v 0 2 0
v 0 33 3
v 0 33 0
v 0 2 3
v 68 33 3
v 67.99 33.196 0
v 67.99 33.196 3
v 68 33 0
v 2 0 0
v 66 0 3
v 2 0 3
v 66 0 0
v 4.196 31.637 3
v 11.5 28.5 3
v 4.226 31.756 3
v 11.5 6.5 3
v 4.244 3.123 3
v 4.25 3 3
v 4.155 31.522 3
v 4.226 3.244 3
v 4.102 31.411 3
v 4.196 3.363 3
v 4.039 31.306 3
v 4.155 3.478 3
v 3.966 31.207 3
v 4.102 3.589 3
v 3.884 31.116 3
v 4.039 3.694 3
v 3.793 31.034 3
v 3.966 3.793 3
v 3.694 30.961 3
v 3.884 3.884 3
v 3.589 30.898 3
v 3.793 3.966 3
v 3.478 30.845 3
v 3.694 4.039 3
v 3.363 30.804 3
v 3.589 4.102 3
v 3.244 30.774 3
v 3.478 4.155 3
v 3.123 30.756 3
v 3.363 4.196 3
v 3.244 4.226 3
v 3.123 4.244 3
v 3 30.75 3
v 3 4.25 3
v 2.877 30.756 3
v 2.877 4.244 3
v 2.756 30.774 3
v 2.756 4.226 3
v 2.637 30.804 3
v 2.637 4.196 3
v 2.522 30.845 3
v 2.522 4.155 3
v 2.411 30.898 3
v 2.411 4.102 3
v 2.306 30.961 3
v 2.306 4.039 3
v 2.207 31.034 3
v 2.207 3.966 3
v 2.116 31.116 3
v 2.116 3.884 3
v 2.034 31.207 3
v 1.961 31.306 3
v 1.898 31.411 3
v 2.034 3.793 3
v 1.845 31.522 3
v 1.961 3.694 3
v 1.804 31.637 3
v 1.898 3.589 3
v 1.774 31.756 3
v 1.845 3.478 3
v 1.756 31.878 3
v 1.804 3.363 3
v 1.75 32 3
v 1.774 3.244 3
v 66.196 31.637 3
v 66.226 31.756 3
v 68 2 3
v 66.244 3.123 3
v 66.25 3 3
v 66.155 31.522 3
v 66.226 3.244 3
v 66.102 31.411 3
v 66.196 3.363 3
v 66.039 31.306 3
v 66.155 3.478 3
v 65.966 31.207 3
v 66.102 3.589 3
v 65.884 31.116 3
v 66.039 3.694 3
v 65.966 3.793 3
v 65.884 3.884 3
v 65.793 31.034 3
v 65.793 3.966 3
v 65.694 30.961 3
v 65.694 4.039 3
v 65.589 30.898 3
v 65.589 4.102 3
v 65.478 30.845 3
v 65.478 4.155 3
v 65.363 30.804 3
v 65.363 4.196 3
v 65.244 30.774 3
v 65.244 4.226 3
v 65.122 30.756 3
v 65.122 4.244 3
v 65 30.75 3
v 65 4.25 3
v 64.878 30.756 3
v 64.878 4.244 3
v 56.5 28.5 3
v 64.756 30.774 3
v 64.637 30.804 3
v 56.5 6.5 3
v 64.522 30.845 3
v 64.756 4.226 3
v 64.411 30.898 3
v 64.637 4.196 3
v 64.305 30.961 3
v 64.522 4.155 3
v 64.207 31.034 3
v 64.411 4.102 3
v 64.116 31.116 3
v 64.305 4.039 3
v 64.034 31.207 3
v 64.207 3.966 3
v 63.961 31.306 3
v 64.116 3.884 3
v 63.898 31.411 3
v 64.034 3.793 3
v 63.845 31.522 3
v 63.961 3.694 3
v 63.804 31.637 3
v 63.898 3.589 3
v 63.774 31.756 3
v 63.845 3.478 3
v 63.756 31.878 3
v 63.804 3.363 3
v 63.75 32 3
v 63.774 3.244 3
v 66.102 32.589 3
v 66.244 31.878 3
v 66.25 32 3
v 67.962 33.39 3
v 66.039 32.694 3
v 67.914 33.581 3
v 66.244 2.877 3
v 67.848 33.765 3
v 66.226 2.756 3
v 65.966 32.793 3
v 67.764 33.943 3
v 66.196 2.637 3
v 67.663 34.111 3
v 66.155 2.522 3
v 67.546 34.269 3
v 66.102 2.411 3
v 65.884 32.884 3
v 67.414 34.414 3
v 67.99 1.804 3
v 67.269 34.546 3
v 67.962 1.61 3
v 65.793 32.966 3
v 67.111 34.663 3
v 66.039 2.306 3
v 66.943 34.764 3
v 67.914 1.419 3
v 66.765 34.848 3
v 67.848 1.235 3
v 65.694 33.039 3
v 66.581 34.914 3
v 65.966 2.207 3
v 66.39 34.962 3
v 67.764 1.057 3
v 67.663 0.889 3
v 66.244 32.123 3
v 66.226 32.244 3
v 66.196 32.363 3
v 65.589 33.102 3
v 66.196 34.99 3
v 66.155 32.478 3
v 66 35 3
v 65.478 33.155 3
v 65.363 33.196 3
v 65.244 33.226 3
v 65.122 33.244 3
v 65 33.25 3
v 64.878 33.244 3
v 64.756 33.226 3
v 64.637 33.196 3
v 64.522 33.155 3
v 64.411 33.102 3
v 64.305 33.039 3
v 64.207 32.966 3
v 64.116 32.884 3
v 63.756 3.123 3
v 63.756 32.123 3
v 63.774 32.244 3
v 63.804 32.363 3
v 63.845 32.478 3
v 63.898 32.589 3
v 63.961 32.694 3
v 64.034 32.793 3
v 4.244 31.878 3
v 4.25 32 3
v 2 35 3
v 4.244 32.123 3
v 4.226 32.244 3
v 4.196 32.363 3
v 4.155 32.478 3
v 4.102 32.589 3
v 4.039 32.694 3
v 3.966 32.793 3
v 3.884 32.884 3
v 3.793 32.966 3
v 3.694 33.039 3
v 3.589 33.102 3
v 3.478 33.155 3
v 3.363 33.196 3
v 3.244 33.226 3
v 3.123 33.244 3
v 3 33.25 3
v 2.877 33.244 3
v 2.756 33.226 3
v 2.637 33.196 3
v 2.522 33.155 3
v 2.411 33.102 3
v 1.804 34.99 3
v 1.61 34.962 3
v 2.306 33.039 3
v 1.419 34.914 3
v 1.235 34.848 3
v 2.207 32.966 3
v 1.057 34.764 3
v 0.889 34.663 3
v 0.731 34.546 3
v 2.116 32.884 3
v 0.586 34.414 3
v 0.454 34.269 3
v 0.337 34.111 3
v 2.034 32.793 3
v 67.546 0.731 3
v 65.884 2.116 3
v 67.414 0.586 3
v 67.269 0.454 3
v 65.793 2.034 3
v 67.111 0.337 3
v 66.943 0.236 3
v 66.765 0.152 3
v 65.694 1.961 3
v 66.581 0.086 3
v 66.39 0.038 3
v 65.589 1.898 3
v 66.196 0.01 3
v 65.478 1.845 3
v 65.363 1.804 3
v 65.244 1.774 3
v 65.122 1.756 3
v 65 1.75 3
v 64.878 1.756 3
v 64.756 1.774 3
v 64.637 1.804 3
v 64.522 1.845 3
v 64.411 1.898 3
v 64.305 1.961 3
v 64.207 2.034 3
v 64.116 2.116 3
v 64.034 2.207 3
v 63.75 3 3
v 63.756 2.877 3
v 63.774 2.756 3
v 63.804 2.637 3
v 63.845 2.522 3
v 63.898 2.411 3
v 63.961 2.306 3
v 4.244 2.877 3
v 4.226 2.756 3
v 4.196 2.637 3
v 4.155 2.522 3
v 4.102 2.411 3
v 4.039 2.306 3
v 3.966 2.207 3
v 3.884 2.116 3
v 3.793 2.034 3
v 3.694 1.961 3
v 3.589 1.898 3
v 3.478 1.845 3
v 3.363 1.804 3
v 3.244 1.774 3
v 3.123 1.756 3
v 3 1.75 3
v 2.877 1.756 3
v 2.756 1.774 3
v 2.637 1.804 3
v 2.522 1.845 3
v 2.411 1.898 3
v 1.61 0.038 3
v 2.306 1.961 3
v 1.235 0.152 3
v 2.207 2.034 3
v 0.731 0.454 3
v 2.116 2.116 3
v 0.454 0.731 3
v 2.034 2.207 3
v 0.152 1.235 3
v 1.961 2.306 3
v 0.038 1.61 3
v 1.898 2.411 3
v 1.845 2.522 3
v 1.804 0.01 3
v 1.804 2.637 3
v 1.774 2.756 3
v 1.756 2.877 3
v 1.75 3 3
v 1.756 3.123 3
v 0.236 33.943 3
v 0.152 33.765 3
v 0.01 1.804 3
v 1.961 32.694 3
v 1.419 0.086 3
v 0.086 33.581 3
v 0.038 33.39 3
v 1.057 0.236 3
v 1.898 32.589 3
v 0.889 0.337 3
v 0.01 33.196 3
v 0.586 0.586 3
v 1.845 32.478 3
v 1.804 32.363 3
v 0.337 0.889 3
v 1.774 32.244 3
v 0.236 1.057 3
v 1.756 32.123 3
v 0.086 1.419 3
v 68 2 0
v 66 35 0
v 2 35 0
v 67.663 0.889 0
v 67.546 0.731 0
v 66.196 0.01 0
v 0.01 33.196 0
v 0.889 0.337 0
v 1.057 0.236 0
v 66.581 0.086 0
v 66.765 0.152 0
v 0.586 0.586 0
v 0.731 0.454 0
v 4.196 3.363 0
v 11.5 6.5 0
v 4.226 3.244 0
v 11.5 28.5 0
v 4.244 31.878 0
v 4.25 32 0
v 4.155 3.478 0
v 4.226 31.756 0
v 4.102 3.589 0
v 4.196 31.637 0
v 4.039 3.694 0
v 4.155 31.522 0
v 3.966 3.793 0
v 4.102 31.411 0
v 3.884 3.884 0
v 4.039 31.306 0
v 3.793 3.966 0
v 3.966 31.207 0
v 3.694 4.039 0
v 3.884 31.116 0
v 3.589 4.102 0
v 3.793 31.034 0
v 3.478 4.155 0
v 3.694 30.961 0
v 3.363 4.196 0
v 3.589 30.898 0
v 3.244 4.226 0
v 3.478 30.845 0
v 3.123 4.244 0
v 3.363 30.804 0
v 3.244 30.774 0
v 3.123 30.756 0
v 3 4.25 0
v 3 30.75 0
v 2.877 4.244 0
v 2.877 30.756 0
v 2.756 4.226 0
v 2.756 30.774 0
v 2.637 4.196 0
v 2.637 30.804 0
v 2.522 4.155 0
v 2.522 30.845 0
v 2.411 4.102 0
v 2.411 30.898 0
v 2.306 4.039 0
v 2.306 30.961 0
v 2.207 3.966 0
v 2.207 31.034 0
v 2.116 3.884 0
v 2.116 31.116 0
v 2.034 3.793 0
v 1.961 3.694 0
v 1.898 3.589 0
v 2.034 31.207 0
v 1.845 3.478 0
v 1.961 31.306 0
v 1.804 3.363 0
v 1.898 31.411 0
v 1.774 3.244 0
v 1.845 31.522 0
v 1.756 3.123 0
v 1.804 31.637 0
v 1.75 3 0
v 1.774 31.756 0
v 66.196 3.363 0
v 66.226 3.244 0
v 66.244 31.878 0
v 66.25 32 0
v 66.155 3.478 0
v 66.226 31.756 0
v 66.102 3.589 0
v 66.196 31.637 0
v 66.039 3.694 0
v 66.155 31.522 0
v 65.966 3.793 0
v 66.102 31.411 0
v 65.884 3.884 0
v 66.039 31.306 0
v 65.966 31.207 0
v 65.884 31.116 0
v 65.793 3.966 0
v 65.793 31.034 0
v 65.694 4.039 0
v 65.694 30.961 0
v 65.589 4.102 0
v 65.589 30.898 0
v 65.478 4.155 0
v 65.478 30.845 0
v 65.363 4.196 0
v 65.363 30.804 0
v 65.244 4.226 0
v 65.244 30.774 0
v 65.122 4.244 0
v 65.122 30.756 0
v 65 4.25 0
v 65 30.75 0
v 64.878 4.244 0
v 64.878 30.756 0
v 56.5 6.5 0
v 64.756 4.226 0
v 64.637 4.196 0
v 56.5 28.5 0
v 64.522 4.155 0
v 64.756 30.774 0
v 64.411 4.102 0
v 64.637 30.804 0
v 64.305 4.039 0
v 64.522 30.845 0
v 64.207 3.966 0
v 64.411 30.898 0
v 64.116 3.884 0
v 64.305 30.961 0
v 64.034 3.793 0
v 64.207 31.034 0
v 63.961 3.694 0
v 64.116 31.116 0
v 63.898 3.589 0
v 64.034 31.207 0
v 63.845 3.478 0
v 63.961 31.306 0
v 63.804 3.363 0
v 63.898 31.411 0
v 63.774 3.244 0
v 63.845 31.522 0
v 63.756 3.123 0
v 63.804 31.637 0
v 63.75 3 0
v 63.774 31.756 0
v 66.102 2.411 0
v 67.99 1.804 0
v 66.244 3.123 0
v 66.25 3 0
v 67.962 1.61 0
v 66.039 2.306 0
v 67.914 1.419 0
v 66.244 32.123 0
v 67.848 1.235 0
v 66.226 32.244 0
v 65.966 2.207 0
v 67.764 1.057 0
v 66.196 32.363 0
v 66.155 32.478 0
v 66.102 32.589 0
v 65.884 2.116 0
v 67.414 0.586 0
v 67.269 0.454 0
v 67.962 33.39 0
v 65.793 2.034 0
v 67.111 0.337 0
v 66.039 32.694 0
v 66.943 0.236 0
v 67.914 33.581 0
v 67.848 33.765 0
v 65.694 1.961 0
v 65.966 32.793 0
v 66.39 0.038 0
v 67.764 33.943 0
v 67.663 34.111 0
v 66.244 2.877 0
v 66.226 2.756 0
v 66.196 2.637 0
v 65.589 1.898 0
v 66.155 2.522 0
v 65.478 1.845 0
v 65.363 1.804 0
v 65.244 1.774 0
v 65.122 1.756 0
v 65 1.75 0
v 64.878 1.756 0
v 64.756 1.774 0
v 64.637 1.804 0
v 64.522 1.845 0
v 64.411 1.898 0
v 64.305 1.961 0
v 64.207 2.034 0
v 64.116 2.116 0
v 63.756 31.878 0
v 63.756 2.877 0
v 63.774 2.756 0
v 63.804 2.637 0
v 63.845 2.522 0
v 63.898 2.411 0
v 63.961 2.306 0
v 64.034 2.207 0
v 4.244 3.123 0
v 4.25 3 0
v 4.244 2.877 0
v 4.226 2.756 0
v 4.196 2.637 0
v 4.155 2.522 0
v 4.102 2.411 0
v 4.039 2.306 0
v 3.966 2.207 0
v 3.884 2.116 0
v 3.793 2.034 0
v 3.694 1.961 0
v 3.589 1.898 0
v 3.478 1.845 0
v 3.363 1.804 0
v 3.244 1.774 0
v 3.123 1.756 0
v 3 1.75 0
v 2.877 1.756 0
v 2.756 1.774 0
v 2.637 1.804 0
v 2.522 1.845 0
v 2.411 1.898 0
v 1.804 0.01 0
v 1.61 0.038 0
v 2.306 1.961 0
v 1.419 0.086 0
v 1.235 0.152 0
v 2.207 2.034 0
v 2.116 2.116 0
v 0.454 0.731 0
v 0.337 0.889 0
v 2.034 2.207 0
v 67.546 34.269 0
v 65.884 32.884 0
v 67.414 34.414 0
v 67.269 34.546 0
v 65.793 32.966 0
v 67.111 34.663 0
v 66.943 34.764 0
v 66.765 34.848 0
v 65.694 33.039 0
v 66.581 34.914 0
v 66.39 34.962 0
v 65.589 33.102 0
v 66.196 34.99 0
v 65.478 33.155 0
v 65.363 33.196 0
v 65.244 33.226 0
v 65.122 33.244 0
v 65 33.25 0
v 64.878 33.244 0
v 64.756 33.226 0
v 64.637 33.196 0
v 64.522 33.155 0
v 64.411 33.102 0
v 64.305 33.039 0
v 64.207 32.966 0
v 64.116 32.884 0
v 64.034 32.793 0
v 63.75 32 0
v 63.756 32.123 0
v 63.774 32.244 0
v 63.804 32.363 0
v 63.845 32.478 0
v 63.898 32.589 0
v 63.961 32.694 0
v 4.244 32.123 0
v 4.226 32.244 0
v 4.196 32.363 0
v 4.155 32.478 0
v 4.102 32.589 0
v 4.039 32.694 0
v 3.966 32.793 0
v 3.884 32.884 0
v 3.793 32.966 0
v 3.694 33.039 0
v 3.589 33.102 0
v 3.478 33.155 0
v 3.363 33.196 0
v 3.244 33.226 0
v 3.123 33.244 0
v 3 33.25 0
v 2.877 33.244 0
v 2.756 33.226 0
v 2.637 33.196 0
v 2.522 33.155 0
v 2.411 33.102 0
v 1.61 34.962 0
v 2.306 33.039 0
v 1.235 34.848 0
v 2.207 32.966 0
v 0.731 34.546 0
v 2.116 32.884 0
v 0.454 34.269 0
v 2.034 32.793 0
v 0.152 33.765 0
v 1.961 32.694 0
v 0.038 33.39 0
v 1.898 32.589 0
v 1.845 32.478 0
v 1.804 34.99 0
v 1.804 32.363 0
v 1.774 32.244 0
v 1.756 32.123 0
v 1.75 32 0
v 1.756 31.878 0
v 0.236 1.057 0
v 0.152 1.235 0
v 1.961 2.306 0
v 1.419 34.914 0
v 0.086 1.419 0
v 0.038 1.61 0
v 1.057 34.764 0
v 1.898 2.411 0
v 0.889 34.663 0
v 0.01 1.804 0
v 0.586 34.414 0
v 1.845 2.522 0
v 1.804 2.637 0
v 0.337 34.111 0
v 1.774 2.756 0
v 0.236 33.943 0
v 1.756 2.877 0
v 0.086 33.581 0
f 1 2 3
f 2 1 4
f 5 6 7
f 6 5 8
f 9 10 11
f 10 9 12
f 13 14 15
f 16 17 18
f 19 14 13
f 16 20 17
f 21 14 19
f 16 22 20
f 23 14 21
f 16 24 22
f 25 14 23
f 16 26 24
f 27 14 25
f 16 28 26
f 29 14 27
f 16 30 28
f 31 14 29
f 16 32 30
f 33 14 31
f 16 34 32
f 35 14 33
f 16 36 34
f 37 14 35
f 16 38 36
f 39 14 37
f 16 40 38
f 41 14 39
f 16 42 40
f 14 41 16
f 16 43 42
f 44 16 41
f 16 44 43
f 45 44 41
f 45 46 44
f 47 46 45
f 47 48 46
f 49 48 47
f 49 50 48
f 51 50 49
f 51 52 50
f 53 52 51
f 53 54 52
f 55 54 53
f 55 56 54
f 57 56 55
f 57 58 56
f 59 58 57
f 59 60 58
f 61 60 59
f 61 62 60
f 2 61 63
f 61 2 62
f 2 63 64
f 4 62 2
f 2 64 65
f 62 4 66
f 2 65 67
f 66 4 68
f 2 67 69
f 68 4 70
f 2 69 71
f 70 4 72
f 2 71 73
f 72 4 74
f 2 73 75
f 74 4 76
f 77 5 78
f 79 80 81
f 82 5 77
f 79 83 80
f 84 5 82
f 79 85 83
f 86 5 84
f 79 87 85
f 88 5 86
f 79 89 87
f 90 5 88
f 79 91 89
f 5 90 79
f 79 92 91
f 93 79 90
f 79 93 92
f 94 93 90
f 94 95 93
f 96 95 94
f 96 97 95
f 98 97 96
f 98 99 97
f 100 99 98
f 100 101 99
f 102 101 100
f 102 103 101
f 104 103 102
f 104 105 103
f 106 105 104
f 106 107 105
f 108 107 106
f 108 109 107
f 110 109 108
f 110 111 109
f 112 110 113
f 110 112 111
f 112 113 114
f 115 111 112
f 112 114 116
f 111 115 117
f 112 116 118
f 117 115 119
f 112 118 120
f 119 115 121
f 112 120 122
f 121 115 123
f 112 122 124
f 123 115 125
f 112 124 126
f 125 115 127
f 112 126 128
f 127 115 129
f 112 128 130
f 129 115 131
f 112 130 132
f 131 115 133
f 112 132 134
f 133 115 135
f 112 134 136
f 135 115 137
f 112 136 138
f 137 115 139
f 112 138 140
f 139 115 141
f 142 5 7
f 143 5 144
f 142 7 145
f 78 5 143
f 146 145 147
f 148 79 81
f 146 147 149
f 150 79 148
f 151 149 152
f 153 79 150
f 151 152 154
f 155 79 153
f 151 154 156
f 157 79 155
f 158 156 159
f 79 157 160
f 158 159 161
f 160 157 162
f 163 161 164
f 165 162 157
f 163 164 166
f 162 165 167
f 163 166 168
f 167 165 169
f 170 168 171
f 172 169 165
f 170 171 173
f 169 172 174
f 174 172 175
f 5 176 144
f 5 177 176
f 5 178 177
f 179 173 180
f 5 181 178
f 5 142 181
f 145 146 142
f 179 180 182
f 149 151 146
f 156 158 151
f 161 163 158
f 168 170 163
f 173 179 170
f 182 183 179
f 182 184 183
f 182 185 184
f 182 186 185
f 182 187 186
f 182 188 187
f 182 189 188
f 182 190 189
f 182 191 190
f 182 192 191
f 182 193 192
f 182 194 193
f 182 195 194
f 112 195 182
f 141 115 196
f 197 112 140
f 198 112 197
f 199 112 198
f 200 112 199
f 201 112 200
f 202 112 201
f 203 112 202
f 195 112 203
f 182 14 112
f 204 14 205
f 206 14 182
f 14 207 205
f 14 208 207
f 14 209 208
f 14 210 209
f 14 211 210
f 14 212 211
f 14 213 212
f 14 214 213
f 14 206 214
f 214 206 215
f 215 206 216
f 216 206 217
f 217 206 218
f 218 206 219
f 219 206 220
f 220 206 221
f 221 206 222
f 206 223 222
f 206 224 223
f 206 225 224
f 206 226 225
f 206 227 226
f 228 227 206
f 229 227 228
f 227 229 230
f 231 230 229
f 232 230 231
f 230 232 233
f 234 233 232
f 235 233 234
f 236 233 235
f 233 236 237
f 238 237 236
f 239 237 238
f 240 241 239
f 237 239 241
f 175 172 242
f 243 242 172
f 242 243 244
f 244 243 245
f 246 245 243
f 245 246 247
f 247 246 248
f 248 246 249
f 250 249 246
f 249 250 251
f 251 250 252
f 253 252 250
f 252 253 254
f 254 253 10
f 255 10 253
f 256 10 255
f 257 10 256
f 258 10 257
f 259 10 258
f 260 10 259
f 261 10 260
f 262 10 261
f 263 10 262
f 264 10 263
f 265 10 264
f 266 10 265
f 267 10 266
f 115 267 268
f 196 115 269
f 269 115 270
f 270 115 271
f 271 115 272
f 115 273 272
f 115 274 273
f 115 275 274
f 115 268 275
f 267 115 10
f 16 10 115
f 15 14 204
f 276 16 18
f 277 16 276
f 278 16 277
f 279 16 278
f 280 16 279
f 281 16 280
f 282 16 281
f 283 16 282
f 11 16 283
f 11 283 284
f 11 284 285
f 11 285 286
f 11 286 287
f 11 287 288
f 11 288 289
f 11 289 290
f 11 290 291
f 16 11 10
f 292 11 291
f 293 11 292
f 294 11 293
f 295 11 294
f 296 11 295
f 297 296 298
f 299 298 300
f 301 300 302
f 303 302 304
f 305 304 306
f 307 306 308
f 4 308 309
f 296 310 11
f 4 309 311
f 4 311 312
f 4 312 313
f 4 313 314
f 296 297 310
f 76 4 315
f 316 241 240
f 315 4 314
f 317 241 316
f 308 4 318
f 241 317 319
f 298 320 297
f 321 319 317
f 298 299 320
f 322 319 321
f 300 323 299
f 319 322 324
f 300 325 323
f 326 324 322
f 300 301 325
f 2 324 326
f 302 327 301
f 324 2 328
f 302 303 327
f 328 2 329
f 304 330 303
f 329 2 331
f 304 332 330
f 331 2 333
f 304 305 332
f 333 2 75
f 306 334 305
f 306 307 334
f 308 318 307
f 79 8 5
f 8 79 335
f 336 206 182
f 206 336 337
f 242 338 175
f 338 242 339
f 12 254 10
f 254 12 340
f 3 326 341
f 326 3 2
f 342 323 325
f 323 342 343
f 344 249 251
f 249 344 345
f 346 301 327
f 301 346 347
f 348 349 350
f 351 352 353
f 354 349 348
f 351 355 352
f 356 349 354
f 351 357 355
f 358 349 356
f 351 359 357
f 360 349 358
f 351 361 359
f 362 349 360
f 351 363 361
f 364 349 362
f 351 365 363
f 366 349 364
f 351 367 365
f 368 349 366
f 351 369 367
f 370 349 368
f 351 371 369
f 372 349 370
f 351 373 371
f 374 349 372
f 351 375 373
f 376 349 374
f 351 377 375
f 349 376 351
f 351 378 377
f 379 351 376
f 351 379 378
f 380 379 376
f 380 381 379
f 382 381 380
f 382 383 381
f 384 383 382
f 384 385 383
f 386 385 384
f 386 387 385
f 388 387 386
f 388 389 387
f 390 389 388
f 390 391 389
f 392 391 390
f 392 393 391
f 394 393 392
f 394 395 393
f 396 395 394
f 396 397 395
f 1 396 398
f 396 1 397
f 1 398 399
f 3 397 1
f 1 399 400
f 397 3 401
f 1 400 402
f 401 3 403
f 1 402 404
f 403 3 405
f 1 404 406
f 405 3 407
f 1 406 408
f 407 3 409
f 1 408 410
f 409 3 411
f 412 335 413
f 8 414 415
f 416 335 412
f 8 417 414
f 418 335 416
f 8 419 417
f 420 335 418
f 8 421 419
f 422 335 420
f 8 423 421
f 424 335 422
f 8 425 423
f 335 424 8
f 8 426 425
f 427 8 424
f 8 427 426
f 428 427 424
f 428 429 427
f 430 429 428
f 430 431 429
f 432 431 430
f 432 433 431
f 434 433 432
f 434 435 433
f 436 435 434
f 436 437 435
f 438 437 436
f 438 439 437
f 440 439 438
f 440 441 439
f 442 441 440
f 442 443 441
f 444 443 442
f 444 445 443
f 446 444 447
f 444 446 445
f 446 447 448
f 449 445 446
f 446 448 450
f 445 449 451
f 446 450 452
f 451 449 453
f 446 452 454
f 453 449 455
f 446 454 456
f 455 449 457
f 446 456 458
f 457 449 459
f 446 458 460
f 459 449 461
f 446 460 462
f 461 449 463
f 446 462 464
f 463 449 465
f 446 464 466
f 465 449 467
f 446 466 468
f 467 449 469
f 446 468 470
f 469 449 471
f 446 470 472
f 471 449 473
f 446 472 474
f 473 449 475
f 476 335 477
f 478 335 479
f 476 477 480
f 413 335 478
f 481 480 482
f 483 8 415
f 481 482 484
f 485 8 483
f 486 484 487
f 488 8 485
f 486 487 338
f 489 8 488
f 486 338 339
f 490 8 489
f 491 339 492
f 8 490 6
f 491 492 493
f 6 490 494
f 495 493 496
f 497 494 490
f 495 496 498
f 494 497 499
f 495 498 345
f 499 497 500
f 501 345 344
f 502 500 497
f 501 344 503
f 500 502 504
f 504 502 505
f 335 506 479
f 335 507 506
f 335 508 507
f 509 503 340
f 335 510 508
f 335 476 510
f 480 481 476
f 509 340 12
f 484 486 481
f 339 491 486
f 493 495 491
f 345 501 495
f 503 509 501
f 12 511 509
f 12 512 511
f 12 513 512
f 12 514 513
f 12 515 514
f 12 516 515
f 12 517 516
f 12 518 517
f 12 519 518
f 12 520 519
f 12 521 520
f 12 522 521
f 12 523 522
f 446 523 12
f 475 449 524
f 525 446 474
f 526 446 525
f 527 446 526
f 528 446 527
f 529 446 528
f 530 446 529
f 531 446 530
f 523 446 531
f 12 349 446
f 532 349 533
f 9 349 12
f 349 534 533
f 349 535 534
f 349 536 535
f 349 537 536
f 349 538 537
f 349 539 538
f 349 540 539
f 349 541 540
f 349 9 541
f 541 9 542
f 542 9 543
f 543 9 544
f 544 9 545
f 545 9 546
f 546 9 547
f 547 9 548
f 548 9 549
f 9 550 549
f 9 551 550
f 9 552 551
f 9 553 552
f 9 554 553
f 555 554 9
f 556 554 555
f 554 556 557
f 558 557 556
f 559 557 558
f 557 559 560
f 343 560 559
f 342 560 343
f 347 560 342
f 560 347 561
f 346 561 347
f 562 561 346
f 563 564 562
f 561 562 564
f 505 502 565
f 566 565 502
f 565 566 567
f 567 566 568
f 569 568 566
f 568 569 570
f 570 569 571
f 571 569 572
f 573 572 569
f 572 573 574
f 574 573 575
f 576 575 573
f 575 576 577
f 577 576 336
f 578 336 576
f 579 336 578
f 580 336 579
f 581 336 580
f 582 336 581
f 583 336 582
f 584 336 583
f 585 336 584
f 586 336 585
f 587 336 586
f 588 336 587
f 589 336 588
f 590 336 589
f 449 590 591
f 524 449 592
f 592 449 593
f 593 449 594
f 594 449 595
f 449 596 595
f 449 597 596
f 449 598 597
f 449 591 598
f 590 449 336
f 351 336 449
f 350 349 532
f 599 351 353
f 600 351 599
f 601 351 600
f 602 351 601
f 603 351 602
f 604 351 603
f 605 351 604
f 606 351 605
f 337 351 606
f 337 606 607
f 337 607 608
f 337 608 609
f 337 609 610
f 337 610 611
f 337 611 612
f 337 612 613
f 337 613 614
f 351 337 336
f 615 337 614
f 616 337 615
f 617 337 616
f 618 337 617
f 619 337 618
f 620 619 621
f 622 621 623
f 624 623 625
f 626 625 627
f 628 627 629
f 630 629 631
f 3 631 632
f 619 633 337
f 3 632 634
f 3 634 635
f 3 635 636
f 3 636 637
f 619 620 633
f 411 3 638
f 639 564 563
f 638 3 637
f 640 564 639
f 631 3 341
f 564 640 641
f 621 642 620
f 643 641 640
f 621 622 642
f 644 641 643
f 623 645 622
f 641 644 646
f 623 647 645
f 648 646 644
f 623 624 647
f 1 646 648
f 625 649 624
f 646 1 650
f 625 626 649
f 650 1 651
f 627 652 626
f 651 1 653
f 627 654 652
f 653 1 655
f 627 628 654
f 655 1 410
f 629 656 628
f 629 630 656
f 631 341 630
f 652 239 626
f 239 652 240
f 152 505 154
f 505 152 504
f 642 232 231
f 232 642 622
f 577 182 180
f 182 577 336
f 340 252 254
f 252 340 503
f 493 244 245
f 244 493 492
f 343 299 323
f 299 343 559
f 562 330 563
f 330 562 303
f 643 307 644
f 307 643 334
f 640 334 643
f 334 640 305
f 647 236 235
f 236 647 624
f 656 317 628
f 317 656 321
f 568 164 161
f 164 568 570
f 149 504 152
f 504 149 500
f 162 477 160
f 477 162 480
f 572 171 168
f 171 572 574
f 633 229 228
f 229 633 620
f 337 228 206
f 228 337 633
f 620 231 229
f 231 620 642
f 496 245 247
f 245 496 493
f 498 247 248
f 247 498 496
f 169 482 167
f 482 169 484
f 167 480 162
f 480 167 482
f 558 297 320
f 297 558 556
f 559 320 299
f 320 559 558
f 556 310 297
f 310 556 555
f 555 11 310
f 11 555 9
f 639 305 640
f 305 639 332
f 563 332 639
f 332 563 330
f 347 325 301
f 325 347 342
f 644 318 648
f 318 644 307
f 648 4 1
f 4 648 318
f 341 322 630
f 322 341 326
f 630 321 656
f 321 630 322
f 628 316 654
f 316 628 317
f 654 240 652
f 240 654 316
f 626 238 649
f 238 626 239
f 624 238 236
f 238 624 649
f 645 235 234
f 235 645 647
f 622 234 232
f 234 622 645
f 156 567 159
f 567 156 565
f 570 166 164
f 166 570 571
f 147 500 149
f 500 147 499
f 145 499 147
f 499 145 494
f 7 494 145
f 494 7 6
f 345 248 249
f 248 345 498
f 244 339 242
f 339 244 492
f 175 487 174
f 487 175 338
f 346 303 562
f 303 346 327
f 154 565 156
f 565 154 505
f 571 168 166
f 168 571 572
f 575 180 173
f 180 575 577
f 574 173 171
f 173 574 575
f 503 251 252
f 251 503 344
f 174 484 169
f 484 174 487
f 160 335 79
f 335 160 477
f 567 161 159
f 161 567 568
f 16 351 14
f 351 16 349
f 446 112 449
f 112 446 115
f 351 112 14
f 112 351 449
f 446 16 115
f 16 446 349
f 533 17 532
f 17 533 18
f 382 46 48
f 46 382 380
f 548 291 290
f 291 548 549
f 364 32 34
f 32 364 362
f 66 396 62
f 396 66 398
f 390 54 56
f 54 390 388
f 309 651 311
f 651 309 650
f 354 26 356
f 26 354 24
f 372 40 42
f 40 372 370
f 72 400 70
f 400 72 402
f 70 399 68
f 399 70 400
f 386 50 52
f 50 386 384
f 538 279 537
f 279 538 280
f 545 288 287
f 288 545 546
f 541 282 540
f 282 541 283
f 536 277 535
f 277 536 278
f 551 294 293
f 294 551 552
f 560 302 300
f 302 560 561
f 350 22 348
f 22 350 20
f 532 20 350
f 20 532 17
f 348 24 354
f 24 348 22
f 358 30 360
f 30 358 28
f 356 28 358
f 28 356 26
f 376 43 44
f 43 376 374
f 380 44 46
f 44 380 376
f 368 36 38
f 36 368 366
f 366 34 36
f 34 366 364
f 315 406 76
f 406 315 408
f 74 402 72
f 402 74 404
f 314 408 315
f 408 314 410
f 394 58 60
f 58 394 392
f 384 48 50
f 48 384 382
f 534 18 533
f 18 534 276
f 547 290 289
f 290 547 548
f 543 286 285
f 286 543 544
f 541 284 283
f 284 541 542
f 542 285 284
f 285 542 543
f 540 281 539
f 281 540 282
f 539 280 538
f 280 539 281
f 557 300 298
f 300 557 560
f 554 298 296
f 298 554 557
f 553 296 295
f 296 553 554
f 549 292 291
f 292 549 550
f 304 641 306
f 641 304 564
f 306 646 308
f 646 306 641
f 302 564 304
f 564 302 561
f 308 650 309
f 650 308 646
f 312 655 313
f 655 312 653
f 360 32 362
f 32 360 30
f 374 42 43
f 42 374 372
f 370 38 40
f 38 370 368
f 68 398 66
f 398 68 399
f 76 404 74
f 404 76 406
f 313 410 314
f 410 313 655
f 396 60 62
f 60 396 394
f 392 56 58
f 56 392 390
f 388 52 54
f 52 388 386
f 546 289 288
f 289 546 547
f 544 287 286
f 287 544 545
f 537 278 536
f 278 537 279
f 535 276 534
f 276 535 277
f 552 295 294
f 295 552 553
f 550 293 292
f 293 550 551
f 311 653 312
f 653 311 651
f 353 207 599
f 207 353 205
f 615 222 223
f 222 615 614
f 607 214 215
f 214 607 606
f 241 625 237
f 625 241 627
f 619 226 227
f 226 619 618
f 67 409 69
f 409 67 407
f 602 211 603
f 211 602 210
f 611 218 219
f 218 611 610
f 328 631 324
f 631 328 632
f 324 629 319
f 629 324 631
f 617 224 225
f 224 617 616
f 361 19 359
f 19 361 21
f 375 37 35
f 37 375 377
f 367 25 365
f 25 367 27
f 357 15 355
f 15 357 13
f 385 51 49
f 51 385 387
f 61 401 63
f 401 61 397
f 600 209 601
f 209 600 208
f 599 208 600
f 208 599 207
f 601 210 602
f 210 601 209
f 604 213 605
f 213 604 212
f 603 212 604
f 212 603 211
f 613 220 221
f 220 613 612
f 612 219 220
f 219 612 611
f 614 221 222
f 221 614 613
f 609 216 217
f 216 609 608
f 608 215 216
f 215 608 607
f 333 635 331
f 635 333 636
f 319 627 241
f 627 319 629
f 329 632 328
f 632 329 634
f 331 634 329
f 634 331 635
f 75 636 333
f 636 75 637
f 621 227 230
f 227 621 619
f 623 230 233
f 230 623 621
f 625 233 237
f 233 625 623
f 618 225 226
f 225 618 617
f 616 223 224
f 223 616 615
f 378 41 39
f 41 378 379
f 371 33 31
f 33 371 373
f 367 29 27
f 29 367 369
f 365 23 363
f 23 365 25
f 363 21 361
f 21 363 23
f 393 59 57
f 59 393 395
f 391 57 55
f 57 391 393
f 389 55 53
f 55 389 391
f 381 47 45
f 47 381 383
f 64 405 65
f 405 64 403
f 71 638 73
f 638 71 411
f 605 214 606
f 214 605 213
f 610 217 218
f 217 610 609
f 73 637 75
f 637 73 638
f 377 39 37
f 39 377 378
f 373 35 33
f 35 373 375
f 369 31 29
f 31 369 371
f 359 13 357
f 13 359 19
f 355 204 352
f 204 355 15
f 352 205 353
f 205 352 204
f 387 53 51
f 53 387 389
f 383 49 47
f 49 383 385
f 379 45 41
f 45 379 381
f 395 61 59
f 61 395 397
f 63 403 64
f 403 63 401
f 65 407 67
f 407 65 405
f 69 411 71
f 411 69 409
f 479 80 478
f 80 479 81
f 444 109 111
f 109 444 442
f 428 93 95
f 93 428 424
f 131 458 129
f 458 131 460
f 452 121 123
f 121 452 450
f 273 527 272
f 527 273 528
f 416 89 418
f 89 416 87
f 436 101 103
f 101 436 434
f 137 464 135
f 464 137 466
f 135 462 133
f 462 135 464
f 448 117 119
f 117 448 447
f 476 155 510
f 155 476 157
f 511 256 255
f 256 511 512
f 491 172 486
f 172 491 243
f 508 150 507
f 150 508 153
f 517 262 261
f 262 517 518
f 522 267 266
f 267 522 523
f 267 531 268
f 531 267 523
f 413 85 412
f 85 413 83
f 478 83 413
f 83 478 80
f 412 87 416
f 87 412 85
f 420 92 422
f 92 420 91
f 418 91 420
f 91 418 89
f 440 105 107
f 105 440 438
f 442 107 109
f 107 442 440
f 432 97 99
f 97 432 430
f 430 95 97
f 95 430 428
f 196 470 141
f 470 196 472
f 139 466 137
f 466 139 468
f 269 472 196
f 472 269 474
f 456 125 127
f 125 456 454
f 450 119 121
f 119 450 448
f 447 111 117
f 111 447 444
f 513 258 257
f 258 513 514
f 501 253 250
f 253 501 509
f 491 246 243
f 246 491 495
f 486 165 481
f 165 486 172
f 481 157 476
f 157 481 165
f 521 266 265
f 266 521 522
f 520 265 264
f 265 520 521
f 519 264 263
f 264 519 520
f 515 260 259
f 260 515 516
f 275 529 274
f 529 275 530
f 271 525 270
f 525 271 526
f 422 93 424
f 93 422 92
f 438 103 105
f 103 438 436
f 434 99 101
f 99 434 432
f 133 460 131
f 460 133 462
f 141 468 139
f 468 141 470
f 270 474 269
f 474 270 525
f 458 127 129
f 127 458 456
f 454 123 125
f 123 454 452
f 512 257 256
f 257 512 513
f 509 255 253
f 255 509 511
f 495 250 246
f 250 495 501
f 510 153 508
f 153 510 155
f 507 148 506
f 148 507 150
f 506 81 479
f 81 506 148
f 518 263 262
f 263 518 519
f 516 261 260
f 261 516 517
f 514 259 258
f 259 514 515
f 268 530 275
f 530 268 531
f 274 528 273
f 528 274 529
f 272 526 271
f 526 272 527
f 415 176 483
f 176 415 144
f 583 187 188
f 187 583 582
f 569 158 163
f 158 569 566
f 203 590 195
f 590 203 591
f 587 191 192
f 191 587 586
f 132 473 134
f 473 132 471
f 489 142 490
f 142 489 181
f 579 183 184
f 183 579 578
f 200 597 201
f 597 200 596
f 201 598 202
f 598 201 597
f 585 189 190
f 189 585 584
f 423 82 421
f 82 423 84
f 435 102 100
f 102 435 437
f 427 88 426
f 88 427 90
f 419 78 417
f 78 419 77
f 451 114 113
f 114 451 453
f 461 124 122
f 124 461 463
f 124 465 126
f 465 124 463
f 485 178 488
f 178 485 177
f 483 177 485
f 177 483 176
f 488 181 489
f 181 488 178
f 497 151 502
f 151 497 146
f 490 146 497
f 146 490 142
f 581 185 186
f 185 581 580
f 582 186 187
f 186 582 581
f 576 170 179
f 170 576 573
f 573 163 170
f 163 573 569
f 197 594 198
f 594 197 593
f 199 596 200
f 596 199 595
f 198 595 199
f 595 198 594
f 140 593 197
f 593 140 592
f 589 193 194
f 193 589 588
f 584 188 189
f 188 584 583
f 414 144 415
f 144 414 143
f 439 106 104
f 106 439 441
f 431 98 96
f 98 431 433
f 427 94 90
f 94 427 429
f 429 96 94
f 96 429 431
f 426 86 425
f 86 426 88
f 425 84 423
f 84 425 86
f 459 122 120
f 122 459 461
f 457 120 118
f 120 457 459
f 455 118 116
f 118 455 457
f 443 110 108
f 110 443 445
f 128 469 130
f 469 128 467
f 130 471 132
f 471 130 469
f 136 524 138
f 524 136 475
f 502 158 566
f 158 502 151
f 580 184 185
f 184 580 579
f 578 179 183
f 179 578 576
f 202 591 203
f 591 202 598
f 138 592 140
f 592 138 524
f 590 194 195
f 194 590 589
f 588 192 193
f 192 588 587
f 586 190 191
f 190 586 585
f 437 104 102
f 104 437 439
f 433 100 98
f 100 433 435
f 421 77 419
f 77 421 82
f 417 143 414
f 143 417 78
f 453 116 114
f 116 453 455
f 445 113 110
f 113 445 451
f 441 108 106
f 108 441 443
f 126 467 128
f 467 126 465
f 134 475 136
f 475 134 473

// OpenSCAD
$fn=64;
difference() {
    union() {
        //roundedcube(20,10,0.3,1);
        //cube([20, 10, 0.3]);
        translate([0, 0, 0]) roundedcube(68, 35, 3, 2);
        // translate([5, 5, 3.5]) #cube([58, 25, 0.1]);
        // translate([ 3,   3, -1])  #cylinder(5, 2.6949, 2.6949);
    }
    // voids
    // translate([  0.75, 0.75, -5]) cube([18.5, 8.5, 5]);
    translate([  11.5,    6.5,    -1]) cube([45,   22,   5]);
    
    // through-holes
    translate([ 3,   3, -1])  cylinder(5, 1.25, 1.25);
    translate([ 3,  32, -1])  cylinder(5, 1.25, 1.25);
    translate([ 65,   3, -1])  cylinder(5, 1.25, 1.25);
    translate([ 65,  32, -1])  cylinder(5, 1.25, 1.25);
}

module roundedcube(xdim, ydim, zdim, rdim) {
    hull() {
    translate([rdim, rdim, 0]) cylinder(r=rdim, h=zdim);
    translate([xdim-rdim, rdim, 0]) cylinder(r=rdim, h=zdim);

    translate([rdim, ydim-rdim, 0]) cylinder(r=rdim, h=zdim);
    translate([xdim-rdim, ydim-rdim, 0]) cylinder(r=rdim, h=zdim);
    }
}
